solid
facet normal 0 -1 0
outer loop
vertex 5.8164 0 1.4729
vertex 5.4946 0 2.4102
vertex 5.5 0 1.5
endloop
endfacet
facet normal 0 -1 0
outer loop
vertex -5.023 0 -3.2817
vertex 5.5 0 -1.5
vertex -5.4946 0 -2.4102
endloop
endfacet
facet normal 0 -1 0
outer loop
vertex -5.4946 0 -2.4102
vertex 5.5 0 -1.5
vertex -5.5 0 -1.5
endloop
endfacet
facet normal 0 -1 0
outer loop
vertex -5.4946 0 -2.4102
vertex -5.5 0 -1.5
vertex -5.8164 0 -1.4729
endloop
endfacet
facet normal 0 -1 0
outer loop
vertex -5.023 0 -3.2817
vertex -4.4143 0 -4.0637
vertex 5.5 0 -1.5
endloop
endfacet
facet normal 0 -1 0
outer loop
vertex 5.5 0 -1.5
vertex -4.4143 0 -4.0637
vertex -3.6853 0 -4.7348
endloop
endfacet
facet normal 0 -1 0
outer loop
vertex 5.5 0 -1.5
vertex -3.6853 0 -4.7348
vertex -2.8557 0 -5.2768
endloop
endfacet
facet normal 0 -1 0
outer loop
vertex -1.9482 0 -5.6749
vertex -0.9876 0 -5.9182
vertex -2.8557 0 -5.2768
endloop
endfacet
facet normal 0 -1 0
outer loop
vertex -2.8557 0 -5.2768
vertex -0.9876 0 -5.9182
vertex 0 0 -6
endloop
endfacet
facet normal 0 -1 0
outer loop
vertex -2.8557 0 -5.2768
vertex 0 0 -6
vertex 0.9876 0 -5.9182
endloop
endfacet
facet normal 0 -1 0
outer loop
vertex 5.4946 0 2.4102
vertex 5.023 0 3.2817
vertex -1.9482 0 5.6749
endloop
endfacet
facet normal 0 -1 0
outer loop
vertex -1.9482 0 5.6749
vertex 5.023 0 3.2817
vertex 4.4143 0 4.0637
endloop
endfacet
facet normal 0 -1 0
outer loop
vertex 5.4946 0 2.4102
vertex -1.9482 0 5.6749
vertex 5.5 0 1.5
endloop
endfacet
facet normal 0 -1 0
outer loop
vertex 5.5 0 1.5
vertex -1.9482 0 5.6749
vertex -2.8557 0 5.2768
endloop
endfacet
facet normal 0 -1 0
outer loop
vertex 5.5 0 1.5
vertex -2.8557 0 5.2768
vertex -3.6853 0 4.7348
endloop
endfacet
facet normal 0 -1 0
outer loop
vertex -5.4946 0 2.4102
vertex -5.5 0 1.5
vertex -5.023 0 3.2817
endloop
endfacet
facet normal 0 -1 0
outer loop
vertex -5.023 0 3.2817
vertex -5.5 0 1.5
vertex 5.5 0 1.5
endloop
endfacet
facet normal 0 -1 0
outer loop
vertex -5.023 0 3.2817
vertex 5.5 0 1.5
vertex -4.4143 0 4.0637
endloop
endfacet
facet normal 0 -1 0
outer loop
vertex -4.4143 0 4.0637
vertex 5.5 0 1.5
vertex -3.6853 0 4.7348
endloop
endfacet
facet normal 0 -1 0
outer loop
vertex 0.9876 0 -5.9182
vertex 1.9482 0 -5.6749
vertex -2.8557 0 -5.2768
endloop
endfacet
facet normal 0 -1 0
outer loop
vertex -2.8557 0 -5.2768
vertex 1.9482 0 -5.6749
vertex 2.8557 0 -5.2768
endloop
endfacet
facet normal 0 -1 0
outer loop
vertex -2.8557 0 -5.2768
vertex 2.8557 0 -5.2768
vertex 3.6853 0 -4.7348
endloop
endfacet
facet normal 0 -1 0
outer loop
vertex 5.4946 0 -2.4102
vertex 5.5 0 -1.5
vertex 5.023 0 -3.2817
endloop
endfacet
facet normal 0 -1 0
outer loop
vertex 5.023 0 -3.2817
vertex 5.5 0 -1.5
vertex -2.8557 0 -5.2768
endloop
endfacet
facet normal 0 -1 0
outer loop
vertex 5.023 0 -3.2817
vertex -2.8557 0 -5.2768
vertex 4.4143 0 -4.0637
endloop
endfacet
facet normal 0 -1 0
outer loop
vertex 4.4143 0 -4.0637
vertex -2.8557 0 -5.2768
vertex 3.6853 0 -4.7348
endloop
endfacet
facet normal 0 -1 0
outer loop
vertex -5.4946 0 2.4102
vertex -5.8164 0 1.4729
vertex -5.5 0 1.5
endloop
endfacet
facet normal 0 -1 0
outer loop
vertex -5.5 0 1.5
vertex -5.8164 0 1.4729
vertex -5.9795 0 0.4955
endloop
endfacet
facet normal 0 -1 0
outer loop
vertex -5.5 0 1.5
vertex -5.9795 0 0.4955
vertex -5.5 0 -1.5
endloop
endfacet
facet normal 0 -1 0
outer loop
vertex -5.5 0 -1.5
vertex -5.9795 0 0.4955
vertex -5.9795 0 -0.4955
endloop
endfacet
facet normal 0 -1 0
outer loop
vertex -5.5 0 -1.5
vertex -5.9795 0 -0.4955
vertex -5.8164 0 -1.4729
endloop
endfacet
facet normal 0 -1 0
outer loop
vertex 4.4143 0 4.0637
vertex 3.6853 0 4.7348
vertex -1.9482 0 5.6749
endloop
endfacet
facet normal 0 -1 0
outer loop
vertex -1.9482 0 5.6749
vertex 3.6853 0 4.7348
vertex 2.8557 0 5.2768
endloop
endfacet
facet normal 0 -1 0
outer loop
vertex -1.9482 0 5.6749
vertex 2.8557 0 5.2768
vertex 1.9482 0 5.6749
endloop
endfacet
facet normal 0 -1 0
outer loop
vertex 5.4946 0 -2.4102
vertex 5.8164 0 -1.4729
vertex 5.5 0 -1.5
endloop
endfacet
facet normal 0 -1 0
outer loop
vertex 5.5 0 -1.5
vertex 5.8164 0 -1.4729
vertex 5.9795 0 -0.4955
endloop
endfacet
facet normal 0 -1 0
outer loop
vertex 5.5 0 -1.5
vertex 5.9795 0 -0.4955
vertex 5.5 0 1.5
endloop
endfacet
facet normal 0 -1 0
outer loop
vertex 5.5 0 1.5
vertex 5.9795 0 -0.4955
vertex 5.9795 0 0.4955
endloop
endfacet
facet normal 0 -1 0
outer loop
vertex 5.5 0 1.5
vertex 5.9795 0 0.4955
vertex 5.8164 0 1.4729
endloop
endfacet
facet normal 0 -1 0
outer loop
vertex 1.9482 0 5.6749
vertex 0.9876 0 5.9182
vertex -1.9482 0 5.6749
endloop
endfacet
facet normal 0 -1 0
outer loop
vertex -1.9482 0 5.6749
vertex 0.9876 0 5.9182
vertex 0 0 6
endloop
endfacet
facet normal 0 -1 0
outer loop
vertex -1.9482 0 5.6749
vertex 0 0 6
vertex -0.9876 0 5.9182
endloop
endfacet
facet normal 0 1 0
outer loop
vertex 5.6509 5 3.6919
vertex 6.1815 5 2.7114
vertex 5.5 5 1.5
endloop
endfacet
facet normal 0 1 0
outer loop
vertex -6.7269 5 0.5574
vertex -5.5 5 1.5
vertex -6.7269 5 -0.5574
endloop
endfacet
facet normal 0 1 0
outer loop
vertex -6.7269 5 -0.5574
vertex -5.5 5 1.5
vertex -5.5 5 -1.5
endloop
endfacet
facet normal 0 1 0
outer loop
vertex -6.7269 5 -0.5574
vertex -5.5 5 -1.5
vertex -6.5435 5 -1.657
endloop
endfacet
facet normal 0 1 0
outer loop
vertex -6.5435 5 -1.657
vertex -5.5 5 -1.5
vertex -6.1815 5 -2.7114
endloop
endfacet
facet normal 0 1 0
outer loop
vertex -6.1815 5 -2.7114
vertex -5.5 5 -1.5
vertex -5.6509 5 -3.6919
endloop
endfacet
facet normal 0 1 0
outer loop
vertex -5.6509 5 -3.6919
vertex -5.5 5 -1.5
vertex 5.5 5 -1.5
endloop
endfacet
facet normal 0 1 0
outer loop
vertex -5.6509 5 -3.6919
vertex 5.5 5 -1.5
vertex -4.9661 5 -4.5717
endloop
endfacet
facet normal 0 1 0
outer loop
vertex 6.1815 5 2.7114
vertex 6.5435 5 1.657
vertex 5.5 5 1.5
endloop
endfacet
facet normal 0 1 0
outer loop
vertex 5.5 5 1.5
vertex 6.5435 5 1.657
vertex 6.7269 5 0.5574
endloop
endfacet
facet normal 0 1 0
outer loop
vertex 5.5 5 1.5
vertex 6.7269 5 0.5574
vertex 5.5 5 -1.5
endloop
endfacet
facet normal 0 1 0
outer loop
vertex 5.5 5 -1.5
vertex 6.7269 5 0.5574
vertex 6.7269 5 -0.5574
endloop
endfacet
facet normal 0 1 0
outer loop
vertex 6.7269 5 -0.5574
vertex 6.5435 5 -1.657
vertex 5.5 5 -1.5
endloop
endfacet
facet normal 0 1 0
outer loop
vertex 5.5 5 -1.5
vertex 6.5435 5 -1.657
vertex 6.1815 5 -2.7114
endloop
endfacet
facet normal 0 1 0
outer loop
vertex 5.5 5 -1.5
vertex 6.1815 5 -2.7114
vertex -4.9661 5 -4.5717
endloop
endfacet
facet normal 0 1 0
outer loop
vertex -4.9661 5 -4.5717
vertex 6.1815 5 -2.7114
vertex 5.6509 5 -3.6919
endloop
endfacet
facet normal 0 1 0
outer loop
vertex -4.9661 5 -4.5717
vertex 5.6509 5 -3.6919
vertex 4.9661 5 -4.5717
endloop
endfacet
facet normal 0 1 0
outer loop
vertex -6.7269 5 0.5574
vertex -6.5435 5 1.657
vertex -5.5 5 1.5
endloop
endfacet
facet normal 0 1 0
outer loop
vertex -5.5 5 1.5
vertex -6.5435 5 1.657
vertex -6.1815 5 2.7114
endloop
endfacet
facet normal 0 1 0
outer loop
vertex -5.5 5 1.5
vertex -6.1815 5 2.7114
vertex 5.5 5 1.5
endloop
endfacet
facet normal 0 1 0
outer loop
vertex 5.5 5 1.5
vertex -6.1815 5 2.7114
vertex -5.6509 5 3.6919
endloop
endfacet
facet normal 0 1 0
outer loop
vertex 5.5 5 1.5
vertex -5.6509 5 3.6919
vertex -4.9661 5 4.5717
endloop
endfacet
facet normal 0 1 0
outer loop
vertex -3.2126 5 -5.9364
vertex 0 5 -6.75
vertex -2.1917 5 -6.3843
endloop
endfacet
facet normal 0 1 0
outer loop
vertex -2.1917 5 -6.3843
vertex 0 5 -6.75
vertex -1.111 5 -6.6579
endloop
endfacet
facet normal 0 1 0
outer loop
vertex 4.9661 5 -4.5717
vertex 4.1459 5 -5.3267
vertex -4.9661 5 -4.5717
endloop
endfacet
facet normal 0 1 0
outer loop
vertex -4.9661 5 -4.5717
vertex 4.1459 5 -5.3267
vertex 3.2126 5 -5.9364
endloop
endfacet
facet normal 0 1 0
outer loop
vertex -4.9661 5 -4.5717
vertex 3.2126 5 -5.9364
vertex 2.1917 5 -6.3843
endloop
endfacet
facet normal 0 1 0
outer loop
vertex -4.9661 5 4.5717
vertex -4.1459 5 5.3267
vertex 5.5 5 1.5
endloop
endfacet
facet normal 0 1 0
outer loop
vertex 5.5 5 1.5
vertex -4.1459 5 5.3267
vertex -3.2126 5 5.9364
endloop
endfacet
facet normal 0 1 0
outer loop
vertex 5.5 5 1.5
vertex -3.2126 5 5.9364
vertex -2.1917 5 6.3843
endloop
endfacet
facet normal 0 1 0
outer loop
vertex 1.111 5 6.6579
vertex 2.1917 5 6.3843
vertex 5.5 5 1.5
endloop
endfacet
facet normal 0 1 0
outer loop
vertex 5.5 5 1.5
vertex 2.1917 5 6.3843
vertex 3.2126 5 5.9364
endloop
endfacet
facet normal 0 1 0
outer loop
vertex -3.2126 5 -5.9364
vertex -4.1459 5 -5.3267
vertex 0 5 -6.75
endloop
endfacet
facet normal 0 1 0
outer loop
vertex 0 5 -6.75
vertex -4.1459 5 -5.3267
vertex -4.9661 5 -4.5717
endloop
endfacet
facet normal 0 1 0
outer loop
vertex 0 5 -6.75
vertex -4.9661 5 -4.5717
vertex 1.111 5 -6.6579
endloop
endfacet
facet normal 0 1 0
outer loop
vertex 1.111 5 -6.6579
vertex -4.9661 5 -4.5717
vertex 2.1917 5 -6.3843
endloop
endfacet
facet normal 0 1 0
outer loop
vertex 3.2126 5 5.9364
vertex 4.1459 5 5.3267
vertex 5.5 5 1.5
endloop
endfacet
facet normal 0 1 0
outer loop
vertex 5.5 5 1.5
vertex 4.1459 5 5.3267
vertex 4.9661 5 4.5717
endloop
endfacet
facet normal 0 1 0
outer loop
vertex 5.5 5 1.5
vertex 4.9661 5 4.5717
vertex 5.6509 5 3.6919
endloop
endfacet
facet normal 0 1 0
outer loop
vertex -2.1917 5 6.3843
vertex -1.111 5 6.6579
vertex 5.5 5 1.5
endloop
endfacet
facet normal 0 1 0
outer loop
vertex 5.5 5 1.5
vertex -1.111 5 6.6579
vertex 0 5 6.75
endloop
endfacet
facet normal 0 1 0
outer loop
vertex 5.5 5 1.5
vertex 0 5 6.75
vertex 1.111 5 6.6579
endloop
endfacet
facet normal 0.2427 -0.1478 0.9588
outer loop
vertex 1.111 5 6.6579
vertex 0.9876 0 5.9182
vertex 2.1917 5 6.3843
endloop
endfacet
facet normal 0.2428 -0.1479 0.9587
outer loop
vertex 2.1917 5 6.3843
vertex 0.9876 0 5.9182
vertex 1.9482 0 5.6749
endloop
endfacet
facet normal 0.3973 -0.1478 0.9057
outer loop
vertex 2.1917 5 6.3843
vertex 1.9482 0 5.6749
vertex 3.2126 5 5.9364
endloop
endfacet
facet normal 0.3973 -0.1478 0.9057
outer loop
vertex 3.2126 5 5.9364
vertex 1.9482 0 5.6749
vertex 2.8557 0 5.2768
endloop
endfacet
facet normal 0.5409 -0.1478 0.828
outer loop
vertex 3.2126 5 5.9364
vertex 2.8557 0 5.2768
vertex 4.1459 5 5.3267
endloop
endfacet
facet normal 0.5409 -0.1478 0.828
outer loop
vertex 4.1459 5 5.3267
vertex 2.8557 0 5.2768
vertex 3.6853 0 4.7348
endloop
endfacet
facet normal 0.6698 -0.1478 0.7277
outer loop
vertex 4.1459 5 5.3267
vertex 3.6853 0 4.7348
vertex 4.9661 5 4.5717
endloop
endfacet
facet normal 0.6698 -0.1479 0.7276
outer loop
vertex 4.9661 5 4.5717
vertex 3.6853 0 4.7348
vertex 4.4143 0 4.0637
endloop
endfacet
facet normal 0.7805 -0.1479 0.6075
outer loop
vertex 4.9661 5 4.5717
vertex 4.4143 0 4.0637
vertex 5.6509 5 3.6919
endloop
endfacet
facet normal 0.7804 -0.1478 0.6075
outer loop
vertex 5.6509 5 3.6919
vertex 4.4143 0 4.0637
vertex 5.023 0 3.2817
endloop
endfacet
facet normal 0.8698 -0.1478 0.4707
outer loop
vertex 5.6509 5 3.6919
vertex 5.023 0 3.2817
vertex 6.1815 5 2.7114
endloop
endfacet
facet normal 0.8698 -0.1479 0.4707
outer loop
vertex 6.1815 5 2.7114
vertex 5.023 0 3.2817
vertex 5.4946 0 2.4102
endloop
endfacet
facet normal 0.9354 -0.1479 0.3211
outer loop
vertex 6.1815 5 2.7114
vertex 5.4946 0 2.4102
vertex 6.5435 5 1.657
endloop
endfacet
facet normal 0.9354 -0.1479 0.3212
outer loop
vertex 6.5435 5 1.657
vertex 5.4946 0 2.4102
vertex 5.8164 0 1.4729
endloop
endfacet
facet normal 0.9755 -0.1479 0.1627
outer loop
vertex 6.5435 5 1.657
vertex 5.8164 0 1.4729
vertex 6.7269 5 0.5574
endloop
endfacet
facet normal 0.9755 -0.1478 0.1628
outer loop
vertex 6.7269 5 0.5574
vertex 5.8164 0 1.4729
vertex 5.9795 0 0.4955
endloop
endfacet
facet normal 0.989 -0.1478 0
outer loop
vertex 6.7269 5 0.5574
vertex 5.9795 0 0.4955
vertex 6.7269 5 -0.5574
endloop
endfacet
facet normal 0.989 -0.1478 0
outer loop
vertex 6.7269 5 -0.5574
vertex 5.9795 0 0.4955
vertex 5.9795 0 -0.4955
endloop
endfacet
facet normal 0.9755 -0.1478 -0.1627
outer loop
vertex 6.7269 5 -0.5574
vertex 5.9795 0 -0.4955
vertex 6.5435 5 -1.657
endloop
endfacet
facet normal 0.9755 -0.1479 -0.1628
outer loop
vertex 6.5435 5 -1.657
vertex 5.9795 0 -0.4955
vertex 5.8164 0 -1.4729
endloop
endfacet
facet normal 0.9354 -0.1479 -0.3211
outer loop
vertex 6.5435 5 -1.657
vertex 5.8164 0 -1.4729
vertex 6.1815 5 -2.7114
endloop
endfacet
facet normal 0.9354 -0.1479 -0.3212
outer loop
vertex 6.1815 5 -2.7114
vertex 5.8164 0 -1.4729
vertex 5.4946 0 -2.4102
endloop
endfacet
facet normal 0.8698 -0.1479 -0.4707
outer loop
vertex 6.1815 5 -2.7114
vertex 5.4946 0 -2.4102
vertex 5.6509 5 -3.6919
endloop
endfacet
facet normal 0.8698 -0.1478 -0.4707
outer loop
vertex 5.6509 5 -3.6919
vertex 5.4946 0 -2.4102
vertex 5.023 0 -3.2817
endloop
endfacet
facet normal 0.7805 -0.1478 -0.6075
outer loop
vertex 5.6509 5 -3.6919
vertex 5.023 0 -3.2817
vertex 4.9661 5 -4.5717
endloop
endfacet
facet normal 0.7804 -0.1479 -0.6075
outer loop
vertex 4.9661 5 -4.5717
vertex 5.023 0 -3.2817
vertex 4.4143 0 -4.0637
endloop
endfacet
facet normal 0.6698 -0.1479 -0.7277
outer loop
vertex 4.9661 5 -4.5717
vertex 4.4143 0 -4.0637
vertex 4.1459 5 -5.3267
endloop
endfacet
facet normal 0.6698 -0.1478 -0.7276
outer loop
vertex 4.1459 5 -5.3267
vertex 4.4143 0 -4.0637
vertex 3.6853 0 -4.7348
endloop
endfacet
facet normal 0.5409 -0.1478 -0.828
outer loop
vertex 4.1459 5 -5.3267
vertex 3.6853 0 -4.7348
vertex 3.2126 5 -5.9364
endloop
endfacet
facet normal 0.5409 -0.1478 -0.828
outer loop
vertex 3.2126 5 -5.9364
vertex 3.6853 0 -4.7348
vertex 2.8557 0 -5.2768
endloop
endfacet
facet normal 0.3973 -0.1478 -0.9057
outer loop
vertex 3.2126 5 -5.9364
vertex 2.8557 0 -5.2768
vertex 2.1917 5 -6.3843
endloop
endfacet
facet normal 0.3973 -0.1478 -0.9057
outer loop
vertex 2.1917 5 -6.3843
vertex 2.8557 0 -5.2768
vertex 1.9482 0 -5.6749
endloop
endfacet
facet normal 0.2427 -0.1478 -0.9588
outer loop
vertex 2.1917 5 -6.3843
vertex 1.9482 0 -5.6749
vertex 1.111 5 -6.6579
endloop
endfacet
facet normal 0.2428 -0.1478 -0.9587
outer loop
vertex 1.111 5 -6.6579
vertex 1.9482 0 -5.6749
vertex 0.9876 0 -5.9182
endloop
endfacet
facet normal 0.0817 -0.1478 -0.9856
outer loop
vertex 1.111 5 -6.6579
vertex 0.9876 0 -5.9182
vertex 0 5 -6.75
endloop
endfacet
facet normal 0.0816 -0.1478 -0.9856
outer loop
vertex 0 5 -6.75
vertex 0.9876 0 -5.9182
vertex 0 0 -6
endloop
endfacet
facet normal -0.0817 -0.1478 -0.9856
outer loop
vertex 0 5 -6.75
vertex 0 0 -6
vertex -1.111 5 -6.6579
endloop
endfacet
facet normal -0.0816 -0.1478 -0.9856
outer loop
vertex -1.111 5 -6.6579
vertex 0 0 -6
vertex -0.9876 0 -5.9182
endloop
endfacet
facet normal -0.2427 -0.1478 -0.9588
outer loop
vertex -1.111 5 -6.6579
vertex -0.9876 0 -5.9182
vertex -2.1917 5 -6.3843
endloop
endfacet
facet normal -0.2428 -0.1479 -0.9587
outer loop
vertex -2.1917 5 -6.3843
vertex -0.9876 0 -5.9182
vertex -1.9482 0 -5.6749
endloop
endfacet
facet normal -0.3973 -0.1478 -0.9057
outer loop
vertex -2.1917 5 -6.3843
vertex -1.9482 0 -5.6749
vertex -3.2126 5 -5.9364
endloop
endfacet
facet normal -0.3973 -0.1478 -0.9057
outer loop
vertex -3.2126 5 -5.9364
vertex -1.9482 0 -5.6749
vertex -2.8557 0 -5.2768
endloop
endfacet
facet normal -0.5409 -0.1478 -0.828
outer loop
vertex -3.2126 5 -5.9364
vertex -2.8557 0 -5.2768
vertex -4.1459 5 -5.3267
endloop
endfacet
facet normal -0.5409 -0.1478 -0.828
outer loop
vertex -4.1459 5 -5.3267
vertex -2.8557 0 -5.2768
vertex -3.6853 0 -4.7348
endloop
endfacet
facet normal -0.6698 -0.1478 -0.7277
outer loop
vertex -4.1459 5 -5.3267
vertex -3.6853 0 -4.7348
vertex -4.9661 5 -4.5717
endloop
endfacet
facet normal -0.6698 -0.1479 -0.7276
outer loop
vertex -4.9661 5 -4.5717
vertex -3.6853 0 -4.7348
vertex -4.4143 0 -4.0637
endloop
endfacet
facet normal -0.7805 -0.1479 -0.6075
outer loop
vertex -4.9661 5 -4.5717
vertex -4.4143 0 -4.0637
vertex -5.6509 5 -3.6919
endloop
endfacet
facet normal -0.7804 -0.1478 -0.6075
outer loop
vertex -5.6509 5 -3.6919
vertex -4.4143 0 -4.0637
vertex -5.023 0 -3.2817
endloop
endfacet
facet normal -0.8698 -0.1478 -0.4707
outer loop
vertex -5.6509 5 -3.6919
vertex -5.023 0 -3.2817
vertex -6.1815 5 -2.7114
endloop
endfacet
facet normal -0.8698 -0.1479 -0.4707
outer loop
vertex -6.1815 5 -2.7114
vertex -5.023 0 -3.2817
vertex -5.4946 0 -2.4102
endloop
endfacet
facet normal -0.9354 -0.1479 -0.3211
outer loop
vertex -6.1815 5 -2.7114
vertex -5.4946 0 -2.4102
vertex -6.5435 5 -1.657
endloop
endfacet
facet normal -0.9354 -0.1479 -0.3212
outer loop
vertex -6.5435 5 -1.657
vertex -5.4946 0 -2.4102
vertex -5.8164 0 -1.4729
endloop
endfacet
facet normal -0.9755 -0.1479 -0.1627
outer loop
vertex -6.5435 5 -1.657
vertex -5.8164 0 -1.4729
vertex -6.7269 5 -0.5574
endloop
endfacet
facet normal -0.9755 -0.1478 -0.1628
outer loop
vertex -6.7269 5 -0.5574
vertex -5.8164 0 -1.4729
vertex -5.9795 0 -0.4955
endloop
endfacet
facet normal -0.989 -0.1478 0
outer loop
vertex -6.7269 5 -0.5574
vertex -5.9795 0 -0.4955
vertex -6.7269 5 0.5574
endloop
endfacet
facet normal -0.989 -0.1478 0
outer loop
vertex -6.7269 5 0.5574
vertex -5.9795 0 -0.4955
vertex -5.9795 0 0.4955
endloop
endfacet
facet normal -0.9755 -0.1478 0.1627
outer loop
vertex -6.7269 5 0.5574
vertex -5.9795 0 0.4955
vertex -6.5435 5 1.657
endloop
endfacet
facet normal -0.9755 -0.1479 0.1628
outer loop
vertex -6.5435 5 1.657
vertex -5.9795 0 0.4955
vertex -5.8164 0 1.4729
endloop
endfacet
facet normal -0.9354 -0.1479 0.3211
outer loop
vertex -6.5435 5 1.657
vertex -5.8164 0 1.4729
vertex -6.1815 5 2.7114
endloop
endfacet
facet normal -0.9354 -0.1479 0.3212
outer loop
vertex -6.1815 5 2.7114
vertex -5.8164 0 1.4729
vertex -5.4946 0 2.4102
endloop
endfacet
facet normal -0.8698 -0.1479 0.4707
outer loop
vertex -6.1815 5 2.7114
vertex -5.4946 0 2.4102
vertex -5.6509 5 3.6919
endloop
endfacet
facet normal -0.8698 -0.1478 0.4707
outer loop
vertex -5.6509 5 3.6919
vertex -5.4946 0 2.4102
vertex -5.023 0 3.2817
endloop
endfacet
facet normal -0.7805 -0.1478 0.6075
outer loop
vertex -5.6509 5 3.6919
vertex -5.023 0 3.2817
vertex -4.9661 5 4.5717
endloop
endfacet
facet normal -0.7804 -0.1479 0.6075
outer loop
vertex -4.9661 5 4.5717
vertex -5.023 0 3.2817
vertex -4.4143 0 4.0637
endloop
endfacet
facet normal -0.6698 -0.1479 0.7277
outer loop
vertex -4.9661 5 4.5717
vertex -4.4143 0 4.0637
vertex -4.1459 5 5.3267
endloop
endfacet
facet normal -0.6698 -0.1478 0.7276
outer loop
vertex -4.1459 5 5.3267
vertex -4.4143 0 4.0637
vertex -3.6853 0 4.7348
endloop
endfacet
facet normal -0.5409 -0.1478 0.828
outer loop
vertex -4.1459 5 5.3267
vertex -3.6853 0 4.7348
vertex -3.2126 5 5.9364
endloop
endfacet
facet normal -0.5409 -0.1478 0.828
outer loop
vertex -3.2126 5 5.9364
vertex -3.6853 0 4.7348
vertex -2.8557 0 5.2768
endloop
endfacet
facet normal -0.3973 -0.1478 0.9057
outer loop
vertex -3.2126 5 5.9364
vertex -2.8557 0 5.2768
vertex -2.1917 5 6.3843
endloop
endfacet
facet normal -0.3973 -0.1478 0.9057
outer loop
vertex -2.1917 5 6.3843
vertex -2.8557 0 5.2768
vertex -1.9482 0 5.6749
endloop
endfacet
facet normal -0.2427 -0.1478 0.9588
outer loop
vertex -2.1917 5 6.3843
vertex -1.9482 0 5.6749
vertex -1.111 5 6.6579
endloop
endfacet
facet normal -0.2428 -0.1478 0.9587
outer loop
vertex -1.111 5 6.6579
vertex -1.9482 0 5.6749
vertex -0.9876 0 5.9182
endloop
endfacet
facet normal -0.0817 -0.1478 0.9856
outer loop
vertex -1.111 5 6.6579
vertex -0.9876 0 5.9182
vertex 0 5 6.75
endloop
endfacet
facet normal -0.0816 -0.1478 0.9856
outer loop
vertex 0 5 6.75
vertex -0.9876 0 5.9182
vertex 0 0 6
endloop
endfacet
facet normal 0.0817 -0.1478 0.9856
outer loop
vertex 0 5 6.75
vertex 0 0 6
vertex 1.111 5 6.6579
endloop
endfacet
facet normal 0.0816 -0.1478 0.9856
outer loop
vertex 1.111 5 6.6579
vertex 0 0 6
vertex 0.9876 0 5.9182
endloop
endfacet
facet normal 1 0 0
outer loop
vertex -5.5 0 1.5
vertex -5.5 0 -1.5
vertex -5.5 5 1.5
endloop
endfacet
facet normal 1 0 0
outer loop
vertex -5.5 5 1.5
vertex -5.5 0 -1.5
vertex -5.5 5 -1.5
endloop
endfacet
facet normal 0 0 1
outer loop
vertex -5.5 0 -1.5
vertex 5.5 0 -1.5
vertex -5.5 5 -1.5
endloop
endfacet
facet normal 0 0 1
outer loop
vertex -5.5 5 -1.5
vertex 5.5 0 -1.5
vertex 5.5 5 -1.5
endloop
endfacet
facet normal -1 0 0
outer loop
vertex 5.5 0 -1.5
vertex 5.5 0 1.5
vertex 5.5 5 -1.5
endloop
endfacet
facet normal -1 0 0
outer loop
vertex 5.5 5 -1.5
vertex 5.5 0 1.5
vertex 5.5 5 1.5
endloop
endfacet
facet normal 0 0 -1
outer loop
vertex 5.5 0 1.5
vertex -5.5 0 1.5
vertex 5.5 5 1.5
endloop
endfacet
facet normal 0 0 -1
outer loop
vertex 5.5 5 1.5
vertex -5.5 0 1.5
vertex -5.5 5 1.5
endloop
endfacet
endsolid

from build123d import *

# Parameters (mm, degrees)
SKETCH2_W          = 11
SKETCH2_H          = 3
CUT_EXTRUDE1_DEPTH = 6


with BuildPart() as part:
    # Sketch1 → Revolve1 (revolve)
    with BuildSketch(Plane.XY):
        Polygon((0, 0), (0, 5), (6.75, 5), (6, 0), align=None)
    revolve(axis=Axis((0, 0, 0), (0, 1, 0)))

    # Sketch2 → Cut-Extrude1 (cut, through all)
    with BuildSketch(Plane(origin=(0, 5, 0), x_dir=(1, 0, 0), z_dir=(0, 1, 0))):
        Rectangle(SKETCH2_W, SKETCH2_H)
    extrude(amount=-CUT_EXTRUDE1_DEPTH, mode=Mode.SUBTRACT)


solid = part.part
